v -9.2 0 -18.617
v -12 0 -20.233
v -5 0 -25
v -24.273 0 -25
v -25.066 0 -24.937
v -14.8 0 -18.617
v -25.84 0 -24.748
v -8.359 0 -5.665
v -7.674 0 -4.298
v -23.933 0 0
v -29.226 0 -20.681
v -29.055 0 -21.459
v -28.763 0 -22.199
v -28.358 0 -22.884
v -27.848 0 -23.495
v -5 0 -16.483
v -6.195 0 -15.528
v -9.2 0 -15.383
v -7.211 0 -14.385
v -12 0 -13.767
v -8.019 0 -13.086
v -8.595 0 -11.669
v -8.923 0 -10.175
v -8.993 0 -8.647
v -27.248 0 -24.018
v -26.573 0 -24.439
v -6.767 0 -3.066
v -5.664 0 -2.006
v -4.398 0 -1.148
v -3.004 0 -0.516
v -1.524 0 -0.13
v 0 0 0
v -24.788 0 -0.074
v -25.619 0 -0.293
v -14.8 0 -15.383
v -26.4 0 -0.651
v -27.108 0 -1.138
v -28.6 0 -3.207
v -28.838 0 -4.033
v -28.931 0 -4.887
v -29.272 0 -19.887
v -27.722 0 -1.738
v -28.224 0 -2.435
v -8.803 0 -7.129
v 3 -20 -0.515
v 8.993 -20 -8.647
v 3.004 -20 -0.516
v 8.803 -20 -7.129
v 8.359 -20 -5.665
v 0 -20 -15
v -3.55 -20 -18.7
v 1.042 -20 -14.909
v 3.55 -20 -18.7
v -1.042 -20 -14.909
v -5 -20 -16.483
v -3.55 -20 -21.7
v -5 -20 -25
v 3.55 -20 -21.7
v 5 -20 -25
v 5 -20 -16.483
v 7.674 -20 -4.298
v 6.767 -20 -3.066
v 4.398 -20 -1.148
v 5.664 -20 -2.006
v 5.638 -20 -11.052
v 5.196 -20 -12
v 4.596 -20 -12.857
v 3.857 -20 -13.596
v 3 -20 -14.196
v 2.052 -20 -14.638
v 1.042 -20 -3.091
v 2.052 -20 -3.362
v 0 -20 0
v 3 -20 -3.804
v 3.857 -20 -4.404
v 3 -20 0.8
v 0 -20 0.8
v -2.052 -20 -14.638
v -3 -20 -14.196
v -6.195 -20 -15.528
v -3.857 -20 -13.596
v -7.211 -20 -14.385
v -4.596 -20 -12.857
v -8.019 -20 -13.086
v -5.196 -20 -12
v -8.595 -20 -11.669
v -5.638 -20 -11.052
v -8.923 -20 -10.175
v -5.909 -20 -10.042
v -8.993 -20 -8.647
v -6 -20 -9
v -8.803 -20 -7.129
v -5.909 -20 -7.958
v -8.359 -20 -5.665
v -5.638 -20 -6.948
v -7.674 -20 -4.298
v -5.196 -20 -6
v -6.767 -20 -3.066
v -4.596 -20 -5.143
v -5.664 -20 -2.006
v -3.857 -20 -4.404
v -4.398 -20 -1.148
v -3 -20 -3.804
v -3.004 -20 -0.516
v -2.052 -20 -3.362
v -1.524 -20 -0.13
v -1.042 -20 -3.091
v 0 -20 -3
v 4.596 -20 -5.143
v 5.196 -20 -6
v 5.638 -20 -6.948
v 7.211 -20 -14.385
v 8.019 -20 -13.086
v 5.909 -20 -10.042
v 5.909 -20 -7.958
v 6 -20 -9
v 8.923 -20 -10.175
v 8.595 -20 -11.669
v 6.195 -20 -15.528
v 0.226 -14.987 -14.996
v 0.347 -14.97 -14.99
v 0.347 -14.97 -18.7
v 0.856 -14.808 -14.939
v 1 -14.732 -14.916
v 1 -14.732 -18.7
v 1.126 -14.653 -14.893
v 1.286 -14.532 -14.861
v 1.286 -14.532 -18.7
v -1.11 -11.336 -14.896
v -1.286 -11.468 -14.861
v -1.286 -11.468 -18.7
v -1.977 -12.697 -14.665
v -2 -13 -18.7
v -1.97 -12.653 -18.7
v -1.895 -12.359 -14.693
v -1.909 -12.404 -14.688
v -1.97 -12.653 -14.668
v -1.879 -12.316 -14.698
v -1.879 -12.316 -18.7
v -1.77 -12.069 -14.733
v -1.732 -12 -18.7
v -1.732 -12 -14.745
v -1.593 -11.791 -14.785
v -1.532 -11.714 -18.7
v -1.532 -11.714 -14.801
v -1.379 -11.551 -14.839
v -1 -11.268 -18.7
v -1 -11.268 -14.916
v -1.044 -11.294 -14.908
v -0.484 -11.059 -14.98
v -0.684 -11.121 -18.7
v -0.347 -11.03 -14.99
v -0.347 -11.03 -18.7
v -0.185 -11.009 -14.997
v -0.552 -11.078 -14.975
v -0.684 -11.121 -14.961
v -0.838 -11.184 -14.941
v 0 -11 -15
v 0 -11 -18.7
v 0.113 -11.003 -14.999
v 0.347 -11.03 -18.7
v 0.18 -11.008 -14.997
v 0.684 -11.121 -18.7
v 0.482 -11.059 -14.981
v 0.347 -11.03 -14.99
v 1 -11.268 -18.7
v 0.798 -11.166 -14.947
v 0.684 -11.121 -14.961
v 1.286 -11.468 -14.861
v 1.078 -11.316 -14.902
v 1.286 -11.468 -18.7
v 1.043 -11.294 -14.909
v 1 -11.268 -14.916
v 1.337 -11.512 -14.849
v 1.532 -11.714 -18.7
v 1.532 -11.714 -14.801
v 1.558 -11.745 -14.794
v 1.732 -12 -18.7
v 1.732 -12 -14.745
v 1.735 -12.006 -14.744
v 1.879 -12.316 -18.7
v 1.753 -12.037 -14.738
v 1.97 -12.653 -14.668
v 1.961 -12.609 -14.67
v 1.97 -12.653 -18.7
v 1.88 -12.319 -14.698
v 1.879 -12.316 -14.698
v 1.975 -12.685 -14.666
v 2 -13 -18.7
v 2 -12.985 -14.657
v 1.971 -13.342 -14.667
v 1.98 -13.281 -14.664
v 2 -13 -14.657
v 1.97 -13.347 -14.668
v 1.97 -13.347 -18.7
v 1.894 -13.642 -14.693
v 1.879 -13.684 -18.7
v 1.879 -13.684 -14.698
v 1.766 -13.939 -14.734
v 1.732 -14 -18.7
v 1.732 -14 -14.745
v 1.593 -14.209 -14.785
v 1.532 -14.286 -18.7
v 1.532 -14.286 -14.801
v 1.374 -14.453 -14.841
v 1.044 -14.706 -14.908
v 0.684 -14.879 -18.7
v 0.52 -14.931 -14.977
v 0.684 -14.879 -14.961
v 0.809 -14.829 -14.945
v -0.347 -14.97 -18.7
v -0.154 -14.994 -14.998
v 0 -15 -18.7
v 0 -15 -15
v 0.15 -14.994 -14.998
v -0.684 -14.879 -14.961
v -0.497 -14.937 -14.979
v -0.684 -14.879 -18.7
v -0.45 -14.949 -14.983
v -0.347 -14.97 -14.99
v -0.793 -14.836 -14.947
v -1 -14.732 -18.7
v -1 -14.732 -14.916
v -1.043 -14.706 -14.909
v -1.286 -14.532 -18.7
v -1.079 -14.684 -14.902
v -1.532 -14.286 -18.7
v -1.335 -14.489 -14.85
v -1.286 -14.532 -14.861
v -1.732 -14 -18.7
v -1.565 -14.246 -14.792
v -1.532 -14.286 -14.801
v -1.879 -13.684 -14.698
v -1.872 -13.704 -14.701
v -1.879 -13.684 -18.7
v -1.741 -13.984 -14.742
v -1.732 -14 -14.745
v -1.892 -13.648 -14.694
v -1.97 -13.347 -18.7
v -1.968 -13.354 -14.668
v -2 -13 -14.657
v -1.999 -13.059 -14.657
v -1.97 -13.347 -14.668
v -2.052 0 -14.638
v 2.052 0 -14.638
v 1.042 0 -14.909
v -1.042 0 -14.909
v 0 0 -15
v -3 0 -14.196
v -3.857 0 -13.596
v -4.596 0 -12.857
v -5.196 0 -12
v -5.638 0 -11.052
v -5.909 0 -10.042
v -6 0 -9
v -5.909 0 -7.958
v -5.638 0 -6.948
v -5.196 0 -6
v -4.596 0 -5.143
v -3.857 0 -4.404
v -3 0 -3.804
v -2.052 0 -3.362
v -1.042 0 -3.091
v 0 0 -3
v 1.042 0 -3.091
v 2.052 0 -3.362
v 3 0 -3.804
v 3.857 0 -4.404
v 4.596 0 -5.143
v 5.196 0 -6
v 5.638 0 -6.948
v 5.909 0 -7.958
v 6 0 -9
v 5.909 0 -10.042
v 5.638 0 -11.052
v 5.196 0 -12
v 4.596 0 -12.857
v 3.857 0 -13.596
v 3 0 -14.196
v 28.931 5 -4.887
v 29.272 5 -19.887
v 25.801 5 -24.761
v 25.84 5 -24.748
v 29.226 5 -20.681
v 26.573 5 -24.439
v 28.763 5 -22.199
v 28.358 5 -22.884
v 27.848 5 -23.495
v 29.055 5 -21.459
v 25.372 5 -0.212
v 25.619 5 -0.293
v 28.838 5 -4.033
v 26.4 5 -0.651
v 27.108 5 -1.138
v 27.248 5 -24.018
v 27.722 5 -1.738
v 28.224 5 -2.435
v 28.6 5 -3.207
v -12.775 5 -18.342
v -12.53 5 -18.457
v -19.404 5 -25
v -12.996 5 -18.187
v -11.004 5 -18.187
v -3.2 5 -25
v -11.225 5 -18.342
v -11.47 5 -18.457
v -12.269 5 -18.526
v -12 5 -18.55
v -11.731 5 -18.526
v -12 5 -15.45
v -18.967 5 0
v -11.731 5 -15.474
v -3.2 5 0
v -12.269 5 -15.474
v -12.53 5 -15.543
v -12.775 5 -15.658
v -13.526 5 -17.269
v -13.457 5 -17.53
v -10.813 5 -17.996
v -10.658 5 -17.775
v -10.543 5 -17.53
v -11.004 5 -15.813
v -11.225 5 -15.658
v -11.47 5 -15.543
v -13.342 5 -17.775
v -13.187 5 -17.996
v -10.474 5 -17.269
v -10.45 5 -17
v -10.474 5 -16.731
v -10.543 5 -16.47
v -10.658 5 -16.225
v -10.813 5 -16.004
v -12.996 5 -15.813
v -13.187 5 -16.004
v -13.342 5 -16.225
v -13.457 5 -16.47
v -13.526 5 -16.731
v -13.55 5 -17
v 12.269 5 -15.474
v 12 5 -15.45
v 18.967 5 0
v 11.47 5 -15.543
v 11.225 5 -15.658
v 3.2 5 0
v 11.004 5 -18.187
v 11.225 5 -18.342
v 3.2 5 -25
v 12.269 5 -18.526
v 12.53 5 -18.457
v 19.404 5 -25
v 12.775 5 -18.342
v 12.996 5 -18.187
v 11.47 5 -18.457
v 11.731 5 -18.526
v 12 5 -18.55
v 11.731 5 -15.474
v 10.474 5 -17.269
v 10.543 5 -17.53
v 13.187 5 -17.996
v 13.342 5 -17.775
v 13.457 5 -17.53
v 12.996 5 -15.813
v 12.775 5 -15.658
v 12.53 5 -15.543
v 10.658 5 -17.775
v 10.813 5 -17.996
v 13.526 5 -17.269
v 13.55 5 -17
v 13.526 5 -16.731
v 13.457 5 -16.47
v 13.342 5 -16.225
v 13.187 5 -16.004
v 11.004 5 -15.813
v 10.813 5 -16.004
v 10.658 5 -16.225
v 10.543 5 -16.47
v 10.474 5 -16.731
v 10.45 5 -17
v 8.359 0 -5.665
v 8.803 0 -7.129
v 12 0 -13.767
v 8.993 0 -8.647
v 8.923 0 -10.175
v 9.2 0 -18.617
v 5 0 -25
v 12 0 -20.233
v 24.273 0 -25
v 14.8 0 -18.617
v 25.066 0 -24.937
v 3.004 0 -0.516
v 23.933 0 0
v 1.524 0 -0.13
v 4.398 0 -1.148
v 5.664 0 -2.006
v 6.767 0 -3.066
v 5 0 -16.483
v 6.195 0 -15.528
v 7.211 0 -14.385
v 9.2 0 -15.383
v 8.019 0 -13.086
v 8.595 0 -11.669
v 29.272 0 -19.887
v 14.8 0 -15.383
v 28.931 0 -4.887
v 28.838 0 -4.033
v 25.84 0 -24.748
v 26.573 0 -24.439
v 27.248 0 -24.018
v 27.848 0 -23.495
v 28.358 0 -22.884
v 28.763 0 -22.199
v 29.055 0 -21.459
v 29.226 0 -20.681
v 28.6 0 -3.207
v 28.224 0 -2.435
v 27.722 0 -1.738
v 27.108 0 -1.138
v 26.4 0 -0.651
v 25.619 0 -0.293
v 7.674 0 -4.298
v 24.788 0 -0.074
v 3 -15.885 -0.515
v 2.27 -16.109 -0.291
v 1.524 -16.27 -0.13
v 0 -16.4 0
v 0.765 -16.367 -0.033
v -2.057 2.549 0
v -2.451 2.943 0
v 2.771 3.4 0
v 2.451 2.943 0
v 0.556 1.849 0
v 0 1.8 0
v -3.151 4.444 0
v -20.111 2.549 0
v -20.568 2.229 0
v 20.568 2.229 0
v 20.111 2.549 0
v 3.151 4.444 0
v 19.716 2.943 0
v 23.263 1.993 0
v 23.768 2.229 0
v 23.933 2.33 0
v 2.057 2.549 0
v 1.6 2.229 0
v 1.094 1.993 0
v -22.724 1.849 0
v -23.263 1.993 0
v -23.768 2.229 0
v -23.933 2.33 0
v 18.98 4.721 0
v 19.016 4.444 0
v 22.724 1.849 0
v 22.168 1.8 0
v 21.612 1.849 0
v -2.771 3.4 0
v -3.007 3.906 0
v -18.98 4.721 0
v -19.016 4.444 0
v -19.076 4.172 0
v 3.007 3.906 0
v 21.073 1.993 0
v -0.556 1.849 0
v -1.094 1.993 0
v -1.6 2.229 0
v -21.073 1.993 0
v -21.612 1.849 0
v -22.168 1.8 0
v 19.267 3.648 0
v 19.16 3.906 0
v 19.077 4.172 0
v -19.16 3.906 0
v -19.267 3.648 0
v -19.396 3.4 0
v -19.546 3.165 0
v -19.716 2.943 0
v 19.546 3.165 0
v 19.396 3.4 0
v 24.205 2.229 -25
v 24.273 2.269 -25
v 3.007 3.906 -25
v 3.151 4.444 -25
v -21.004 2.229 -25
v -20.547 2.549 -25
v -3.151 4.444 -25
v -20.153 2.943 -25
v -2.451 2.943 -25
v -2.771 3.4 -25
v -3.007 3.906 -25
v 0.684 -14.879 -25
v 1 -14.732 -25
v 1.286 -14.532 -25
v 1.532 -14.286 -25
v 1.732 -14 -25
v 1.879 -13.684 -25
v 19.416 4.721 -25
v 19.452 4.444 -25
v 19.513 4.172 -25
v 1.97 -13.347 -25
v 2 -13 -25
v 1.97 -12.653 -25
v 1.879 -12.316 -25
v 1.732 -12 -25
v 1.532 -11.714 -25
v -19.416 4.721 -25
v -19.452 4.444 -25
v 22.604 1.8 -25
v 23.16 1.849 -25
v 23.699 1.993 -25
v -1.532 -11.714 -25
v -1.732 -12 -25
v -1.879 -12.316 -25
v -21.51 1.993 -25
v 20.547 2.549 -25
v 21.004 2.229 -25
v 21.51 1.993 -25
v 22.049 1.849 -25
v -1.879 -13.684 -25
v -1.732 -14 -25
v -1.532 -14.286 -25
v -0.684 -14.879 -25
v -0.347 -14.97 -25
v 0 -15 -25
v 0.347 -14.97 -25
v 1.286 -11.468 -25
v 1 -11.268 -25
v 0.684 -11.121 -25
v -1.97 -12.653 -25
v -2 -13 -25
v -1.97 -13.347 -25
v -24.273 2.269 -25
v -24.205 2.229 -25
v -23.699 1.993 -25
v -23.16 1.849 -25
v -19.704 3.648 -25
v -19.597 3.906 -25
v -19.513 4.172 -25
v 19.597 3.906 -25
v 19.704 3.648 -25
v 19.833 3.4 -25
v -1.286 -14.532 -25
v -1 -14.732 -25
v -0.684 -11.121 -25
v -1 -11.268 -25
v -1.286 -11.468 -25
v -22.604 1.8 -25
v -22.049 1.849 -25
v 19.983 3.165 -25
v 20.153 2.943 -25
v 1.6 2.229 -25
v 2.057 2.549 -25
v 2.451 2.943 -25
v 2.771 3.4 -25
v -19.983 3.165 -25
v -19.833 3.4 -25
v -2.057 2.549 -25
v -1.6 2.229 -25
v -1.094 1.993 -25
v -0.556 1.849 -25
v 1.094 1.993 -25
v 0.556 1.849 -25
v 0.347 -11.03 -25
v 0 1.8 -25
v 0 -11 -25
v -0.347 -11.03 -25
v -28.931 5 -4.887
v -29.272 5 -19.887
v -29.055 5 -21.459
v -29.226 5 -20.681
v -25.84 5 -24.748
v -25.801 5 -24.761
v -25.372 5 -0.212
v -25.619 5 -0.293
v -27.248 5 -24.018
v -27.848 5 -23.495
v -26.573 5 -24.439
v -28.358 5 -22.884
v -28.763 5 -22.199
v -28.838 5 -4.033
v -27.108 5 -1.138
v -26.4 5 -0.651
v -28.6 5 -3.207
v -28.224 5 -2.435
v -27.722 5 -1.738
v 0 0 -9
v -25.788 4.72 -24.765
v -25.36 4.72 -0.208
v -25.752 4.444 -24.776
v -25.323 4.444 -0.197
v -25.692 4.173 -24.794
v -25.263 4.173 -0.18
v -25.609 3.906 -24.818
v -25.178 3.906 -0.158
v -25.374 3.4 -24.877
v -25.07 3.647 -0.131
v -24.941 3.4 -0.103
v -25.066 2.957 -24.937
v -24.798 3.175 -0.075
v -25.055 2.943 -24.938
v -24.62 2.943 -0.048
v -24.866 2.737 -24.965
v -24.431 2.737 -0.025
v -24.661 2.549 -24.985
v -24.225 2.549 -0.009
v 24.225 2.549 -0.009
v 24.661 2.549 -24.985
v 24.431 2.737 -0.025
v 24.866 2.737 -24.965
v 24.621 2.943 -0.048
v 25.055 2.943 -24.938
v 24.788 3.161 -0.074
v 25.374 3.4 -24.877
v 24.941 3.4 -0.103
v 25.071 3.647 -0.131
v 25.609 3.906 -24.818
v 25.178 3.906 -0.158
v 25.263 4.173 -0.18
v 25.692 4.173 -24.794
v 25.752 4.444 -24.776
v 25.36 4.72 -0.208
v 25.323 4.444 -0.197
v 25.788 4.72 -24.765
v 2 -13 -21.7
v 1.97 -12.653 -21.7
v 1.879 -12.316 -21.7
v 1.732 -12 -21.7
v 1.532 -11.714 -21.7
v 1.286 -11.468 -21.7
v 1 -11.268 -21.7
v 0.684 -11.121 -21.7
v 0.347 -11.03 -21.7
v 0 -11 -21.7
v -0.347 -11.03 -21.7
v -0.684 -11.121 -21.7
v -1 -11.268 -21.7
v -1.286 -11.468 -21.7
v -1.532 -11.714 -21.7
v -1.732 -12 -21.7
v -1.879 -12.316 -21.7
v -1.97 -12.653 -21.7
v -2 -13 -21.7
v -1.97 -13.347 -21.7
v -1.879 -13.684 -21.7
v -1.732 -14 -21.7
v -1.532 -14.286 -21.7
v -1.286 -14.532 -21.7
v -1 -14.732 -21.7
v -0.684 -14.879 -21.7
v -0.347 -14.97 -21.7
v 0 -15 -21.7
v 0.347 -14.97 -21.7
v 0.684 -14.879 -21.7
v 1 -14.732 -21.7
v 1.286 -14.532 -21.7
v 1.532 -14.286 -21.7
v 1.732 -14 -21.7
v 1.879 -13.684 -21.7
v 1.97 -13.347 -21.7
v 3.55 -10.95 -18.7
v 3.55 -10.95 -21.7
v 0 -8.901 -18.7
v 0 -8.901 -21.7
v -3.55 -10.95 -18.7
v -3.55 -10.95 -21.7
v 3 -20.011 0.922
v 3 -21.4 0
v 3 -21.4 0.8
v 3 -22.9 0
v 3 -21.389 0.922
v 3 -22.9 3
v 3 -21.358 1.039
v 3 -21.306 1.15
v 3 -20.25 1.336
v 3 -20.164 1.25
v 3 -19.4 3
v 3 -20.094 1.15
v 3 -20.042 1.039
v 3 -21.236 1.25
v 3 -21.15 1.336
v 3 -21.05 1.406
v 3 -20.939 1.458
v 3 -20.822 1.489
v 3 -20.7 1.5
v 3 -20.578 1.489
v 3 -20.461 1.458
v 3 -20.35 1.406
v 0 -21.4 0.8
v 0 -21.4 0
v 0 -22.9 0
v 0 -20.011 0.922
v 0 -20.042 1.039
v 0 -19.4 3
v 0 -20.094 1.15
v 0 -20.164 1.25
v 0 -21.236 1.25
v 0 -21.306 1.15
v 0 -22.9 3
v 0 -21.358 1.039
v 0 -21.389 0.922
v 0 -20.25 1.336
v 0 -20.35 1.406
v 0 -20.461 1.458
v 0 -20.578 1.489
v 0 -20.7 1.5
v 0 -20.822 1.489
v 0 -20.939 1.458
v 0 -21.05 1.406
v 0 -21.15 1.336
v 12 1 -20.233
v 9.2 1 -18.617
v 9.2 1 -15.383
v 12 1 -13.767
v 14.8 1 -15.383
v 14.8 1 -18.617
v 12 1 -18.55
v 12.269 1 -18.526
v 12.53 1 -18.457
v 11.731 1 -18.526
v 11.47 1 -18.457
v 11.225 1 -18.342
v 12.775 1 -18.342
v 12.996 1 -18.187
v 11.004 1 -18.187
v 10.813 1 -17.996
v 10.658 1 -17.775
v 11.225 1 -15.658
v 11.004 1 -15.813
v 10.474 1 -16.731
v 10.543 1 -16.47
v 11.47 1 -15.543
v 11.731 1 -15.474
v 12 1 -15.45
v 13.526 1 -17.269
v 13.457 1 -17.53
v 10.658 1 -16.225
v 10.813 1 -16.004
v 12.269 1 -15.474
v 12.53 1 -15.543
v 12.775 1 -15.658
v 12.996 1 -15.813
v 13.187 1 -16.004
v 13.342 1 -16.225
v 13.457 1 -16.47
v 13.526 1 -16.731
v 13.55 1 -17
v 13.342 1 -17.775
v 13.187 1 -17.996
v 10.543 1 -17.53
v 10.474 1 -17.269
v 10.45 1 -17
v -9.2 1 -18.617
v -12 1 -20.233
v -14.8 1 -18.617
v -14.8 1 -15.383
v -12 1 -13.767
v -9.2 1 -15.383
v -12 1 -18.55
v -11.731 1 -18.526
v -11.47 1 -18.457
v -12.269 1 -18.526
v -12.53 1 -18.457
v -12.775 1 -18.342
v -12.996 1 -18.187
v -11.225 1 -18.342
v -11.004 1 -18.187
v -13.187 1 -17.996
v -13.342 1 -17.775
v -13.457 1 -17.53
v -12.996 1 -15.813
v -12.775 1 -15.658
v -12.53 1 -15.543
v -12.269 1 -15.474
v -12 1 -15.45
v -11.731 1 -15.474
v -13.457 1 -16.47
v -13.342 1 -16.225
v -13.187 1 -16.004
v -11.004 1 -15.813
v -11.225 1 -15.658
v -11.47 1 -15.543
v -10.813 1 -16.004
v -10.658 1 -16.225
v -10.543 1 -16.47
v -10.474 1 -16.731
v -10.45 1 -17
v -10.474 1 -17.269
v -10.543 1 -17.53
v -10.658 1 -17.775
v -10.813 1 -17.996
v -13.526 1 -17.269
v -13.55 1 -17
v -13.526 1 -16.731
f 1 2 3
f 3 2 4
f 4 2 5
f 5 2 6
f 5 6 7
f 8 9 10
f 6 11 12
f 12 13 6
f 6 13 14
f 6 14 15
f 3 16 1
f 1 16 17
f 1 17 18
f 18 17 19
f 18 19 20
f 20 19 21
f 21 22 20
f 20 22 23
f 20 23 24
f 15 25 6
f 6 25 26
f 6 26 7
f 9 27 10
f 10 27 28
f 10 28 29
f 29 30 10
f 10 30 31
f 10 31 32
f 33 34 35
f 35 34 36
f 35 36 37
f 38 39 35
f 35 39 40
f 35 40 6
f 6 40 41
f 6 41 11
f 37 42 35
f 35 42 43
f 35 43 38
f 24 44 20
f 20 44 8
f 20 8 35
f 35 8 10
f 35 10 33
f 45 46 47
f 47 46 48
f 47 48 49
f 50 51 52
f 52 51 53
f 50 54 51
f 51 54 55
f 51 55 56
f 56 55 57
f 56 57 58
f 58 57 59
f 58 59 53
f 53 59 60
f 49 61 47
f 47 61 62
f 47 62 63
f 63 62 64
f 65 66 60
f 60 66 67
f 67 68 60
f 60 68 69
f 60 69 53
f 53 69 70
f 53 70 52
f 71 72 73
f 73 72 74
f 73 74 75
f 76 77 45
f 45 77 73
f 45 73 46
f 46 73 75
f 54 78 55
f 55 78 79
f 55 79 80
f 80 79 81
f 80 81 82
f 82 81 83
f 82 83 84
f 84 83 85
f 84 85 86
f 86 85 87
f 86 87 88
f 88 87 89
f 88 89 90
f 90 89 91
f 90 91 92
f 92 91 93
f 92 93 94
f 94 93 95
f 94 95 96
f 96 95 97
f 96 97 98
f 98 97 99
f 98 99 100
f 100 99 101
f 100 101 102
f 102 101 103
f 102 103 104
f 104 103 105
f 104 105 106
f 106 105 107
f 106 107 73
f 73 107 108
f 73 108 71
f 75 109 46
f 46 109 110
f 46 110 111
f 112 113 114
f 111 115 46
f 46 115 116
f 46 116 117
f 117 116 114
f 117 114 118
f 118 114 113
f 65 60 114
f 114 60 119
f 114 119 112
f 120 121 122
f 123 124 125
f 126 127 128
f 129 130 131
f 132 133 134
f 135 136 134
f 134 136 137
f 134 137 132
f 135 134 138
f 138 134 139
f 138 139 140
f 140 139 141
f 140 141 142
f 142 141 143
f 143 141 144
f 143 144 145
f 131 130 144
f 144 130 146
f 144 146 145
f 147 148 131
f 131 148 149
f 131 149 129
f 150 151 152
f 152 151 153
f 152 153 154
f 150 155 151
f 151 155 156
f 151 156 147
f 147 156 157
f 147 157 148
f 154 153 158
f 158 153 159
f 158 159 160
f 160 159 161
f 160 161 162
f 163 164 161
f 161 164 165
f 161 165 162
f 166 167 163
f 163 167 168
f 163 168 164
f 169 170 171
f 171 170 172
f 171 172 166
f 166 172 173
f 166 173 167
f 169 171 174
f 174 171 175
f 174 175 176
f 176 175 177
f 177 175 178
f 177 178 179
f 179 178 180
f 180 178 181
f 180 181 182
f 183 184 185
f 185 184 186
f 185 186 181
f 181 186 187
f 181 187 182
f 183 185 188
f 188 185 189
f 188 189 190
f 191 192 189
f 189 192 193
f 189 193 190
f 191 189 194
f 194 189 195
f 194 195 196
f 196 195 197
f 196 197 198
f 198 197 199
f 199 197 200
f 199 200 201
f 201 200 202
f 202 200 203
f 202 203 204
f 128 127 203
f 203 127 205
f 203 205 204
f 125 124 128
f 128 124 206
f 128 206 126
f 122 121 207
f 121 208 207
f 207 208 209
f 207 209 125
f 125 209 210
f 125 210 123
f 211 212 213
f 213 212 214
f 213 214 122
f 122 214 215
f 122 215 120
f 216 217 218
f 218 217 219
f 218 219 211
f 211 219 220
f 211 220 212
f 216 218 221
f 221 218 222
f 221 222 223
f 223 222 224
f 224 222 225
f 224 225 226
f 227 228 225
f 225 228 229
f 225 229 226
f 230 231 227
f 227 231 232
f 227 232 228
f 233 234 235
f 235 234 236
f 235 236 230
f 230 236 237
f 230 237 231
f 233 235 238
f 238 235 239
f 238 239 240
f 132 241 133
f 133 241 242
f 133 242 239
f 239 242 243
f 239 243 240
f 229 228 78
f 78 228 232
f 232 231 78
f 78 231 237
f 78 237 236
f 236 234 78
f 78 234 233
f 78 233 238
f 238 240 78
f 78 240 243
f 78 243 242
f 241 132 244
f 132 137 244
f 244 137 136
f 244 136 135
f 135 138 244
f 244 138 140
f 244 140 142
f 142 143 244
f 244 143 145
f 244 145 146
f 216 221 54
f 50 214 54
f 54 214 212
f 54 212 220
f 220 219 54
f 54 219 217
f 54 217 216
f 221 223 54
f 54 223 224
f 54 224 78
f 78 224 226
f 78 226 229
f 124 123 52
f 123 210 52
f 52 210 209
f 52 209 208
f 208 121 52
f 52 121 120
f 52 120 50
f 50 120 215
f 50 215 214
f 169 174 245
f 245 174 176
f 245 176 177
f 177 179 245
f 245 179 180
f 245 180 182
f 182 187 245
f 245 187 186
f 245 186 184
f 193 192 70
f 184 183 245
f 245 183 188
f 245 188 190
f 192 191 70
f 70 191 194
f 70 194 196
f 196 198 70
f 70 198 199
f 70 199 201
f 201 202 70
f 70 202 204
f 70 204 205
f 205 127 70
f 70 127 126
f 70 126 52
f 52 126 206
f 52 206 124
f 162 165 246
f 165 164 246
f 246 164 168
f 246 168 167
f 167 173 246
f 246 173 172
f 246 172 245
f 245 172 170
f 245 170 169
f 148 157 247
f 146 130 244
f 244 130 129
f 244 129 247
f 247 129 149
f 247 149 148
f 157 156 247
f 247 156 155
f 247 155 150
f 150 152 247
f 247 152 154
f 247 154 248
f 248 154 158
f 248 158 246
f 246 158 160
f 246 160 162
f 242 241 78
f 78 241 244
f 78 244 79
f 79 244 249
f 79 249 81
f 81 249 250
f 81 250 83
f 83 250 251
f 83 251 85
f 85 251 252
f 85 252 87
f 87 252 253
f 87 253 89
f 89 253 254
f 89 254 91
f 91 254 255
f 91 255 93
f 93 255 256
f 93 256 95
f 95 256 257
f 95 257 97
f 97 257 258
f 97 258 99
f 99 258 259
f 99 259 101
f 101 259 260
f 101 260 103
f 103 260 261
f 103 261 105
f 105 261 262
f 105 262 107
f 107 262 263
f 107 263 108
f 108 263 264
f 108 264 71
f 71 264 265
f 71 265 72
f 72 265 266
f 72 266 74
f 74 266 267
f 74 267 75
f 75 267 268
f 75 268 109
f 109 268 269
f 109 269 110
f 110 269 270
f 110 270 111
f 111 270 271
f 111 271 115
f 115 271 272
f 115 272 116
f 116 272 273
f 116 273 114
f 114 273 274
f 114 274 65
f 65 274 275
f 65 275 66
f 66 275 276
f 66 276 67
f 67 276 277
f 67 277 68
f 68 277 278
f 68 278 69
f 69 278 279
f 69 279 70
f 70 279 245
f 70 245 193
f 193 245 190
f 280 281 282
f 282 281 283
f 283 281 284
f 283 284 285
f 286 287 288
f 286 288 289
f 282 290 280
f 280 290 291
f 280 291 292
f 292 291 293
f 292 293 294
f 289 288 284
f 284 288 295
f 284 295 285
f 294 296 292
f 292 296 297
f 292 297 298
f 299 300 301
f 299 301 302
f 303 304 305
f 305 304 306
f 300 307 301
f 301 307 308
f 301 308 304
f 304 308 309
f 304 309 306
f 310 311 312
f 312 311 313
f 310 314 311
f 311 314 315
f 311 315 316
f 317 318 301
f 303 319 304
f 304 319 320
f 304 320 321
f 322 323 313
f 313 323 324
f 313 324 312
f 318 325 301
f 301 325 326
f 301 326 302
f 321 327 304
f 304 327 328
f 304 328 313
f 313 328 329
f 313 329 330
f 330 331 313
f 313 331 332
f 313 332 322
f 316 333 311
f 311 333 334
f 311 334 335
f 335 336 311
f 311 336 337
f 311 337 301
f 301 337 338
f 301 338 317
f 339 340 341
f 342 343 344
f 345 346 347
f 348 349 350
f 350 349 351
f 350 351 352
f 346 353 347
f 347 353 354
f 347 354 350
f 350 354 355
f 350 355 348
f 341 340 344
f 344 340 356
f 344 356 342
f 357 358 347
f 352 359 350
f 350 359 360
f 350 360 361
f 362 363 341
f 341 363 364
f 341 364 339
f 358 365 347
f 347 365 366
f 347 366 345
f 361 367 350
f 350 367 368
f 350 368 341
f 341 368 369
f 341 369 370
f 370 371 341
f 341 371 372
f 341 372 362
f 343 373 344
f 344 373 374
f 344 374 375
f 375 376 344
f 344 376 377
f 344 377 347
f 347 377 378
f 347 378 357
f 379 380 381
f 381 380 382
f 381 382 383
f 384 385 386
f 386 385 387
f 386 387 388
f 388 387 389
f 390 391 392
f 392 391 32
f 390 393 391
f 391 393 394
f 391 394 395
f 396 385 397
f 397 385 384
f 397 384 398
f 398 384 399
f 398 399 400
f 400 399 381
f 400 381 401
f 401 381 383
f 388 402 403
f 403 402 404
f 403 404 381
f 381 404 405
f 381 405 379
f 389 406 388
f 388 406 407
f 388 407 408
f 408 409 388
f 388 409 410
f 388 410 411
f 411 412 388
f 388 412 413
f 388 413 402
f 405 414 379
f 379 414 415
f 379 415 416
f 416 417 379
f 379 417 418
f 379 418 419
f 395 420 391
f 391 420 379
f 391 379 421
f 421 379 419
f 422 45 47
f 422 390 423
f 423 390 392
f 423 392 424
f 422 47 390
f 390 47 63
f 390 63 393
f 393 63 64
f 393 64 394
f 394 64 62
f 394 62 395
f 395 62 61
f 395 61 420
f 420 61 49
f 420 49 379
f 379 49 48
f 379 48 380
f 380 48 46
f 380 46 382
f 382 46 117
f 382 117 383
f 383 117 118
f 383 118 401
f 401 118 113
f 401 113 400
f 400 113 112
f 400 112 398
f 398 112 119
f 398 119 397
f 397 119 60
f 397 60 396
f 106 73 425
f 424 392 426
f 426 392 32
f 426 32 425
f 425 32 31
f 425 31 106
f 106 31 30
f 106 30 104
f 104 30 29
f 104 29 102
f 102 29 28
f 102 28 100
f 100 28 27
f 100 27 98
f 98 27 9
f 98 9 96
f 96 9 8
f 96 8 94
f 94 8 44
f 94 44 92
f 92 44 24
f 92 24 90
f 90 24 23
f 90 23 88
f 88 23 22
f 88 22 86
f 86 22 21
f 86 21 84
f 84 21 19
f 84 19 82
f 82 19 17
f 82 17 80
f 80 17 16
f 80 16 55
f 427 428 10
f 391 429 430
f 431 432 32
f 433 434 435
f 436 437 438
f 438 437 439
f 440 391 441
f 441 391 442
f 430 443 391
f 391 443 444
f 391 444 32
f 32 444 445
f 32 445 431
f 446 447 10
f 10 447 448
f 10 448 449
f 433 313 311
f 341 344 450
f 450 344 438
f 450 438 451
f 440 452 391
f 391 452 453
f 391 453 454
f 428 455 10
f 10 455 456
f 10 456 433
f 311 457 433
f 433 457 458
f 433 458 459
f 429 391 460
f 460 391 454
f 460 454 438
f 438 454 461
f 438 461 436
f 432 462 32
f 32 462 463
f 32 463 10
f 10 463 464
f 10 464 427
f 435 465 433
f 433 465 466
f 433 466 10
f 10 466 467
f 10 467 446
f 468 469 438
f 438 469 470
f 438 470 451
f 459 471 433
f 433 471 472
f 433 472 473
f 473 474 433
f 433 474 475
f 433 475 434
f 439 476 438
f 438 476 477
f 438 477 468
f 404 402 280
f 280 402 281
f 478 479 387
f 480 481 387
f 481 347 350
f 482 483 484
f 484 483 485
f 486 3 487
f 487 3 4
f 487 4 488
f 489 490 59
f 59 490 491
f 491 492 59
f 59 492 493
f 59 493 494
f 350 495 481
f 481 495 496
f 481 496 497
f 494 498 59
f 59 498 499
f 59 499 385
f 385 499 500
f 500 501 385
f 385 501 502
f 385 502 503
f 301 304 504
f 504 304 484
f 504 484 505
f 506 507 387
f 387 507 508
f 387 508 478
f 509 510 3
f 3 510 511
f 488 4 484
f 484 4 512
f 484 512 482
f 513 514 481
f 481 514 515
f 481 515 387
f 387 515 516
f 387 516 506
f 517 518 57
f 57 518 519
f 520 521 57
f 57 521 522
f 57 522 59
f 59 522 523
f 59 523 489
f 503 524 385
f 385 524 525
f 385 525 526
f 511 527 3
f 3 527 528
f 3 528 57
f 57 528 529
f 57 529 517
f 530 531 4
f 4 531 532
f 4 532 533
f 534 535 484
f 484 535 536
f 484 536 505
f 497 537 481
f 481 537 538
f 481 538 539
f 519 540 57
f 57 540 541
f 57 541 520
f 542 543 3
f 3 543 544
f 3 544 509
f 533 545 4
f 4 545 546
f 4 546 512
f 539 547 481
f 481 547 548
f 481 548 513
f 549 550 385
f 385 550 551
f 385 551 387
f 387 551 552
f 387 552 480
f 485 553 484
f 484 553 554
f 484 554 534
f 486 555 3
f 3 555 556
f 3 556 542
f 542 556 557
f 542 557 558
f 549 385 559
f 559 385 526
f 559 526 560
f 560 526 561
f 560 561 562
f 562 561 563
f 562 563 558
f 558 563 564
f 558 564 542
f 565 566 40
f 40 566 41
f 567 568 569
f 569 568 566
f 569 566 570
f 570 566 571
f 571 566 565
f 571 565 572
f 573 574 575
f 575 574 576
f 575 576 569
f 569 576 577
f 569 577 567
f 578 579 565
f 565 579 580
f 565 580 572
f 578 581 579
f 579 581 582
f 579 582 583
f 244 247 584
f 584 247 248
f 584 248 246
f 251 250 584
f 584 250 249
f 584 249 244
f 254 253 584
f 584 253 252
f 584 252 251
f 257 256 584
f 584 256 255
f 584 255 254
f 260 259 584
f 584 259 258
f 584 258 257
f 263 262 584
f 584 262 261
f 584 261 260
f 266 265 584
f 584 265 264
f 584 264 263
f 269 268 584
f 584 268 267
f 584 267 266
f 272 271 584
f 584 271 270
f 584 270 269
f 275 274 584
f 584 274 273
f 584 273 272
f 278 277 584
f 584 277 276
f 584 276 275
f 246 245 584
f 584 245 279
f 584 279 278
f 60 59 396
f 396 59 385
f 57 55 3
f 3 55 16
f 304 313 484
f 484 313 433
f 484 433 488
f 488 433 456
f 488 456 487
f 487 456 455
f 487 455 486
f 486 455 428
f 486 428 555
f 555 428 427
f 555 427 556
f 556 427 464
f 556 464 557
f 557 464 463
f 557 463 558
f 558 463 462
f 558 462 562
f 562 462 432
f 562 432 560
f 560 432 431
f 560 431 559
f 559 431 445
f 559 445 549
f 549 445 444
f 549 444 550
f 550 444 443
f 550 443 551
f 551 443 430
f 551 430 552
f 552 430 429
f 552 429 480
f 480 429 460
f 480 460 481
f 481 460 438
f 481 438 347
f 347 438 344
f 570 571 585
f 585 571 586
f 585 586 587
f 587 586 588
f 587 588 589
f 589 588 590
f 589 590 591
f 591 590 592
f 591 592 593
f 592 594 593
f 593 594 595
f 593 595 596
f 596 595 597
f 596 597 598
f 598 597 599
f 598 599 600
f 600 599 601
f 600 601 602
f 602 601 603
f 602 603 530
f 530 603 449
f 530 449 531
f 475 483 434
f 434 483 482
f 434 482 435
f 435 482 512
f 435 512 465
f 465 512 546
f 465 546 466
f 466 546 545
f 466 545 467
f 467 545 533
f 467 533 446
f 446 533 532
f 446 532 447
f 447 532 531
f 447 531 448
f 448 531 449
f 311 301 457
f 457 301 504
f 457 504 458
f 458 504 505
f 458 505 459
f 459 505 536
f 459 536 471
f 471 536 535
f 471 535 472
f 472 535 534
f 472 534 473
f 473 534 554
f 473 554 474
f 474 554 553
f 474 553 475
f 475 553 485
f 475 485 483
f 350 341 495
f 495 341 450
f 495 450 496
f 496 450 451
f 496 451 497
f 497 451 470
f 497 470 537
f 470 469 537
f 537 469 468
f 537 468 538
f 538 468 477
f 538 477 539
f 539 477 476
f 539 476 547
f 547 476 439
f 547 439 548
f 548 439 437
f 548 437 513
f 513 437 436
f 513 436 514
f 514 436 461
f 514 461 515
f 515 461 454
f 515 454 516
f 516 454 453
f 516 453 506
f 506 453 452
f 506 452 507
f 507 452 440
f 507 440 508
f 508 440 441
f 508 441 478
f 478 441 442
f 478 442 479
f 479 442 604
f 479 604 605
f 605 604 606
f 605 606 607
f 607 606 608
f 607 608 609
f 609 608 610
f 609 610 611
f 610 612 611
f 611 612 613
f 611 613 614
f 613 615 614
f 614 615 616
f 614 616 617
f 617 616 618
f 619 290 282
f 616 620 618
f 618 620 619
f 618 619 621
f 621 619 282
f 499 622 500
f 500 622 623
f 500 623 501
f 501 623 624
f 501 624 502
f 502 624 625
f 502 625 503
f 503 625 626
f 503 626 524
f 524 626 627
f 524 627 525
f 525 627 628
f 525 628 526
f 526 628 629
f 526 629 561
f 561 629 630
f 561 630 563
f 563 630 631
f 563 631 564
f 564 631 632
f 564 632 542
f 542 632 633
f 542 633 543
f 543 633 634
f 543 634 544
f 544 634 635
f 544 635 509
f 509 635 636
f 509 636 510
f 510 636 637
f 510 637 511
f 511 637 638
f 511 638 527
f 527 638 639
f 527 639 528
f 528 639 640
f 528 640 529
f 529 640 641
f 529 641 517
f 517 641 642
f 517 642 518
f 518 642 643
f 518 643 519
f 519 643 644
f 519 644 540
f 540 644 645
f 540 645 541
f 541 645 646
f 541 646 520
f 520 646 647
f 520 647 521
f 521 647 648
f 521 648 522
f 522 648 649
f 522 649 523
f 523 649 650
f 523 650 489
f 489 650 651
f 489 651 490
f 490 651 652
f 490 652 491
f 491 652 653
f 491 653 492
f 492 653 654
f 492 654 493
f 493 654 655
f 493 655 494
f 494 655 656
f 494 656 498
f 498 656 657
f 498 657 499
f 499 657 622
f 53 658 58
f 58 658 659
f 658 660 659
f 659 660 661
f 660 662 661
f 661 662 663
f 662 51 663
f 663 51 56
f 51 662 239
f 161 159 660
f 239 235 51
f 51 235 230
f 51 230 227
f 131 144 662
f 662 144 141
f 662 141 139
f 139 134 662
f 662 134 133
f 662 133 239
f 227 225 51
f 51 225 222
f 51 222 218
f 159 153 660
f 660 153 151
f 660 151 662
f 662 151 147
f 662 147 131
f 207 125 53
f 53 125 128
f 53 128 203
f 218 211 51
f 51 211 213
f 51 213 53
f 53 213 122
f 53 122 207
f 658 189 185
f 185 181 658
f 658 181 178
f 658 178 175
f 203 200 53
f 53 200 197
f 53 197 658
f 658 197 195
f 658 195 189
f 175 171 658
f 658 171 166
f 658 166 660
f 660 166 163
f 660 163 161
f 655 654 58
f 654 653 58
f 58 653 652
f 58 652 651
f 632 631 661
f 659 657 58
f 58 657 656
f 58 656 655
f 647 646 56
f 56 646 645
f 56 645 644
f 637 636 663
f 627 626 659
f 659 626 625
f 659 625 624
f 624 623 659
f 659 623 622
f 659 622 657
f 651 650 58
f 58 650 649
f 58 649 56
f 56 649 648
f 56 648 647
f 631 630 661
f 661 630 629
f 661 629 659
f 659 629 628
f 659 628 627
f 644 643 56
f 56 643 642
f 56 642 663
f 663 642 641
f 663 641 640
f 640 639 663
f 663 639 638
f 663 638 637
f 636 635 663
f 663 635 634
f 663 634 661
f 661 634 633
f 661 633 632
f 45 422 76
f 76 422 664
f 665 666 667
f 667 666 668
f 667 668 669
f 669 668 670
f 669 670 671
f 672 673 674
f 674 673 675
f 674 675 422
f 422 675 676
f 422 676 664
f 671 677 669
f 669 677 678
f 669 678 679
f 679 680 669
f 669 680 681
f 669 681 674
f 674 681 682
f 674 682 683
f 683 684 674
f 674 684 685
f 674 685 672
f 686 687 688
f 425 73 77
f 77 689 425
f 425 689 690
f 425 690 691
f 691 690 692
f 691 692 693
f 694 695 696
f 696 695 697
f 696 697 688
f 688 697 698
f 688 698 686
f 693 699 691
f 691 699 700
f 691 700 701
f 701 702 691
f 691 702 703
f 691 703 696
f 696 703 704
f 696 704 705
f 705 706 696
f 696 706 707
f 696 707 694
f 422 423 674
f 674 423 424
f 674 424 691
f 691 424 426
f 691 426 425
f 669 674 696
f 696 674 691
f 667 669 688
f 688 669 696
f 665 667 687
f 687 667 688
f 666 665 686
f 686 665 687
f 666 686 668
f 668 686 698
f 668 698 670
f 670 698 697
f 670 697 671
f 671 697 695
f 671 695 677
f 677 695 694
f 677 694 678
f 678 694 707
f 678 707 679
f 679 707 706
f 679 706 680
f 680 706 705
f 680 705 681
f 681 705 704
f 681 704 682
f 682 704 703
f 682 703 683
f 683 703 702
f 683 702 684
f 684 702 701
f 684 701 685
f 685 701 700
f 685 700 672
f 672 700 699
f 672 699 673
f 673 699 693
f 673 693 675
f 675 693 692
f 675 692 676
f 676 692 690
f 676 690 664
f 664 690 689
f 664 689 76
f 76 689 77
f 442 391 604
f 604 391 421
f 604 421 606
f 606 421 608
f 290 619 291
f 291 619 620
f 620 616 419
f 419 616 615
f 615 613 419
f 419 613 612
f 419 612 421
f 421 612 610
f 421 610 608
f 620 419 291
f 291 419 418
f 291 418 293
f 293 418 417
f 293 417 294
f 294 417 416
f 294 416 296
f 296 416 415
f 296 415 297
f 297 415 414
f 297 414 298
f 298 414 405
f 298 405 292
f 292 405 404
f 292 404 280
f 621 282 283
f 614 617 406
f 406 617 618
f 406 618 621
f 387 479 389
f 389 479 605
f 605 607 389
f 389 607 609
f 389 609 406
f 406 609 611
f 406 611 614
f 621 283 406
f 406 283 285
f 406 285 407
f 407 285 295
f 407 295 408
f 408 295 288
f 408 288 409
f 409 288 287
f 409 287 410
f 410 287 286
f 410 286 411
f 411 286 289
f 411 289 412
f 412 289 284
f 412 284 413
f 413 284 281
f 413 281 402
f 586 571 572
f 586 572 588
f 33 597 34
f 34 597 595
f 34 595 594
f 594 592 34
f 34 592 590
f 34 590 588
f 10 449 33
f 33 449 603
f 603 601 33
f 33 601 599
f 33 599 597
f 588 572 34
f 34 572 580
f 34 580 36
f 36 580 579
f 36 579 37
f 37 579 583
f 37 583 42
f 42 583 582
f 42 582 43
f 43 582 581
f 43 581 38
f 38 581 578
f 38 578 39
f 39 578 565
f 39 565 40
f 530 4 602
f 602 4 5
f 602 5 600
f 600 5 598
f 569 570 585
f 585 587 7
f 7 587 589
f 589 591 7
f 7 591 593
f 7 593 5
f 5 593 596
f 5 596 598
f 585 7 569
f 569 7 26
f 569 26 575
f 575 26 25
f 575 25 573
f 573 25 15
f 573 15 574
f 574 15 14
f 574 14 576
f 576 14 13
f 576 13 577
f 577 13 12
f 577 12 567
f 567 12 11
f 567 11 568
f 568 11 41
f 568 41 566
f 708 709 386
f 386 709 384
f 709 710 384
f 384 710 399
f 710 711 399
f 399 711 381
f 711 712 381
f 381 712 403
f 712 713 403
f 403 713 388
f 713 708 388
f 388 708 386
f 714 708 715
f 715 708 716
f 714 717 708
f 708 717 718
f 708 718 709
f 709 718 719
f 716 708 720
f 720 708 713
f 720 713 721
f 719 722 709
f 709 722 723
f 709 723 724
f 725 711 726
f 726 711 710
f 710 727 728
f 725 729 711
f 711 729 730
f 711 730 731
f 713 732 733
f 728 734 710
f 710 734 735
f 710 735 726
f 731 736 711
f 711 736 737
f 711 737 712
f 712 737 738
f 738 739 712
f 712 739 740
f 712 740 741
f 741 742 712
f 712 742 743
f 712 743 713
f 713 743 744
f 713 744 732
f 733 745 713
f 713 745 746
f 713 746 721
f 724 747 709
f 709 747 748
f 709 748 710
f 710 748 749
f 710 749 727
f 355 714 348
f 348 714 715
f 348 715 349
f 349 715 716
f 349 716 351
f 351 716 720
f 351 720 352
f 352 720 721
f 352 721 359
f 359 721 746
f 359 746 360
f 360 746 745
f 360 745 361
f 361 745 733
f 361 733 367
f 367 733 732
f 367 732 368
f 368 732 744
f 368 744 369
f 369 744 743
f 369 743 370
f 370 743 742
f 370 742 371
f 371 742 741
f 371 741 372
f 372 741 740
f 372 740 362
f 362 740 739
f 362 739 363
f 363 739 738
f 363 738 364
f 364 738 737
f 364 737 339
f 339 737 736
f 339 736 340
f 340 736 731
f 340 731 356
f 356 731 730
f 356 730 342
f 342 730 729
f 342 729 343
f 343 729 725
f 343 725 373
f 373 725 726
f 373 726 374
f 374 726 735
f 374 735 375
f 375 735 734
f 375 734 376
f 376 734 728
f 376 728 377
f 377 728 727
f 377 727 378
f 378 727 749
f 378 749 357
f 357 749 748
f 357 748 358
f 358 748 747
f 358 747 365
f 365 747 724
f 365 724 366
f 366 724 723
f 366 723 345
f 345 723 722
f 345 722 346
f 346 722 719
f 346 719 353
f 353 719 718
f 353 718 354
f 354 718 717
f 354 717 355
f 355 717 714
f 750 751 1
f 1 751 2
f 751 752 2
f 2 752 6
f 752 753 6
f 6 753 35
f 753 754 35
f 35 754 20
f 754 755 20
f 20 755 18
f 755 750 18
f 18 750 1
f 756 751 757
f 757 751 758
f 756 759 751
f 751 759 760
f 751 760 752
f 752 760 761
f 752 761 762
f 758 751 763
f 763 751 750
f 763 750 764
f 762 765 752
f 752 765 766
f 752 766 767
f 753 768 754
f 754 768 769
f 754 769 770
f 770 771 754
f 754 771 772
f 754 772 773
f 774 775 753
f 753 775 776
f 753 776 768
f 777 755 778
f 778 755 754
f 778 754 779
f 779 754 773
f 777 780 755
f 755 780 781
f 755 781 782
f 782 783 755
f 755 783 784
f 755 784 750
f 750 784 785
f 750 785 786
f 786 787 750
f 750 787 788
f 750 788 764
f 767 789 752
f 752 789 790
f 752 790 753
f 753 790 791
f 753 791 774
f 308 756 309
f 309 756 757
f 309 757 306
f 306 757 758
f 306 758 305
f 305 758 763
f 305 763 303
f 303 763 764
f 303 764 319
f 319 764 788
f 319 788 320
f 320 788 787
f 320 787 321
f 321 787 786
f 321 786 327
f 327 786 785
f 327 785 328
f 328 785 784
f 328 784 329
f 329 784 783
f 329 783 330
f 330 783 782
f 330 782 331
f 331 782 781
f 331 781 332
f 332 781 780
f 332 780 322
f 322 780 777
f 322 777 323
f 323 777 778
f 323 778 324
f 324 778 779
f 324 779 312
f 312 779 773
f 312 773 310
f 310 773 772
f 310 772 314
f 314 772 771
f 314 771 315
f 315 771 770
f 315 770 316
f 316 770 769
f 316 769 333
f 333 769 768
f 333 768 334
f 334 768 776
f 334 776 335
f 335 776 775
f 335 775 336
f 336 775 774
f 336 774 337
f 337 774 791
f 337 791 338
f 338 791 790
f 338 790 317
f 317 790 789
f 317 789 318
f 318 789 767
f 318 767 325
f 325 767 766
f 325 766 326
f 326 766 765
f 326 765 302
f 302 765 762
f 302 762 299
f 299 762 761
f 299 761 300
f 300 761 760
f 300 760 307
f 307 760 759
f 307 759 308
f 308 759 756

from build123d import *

# Parameters (mm, degrees)
BOSS_EXTRUDE1_DEPTH             = 5
SKETCH2_R                       = 9
SKETCH2_R_2                     = 6
BOSS_EXTRUDE2_DEPTH             = 20
SKETCH3_W                       = 10
SKETCH3_H                       = 8.516685226
BOSS_EXTRUDE3_DEPTH             = 20
SKETCH5_R                       = 3.2
CUT_EXTRUDE1_DEPTH              = 44.458424087
CIRPATTERN1_COUNT               = 2
CIRPATTERN1_ANGLE               = 1
CIRPATTERN1_THE_OTHER_WAY_COUNT = 2
CIRPATTERN1_THE_OTHER_WAY_ANGLE = 1
CUT_EXTRUDE2_REACH              = 45.458
CUT_EXTRUDE2_END_RADIUS         = 6
SKETCH6_R                       = 2
CUT_EXTRUDE2_DIRECTION_2_DEPTH  = 44.458424087
CUT_EXTRUDE3_START              = -3.3
CUT_EXTRUDE3_DEPTH              = 3
BOSS_EXTRUDE4_DEPTH             = 3
FILLET1_START                   = -20
FILLET1_DEPTH                   = 25
CUT_EXTRUDE4_DEPTH              = 1
SKETCH10_R                      = 1.55
CUT_EXTRUDE5_DEPTH              = 46.311291634


with BuildPart() as part:
    # Sketch1 → Boss-Extrude1 (new body)
    with BuildSketch(Plane(origin=(0, 0, 0), x_dir=(1, 0, 0), z_dir=(0, 1, 0))):
        Polygon((-28.820331722, 0), (-29.387661087, 25), (29.387661087, 25), (28.820331722, 0), align=None)
    extrude(amount=BOSS_EXTRUDE1_DEPTH)

    # Sketch2 → Boss-Extrude2 (add)
    with BuildSketch(Plane.XZ):
        with Locations(Location((0, -9, 0), (0, 0, 90))):
            Circle(SKETCH2_R)
        with Locations(Location((0, -9, 0), (0, 0, 270))):
            Circle(SKETCH2_R_2, mode=Mode.SUBTRACT)
    extrude(amount=BOSS_EXTRUDE2_DEPTH)

    # Sketch3 → Boss-Extrude3 (add)
    with BuildSketch(Plane.XZ):
        with Locations((0, -20.741657387)):
            Rectangle(SKETCH3_W, SKETCH3_H)
    extrude(amount=BOSS_EXTRUDE3_DEPTH)

    # Sketch5 → Cut-Extrude1 (cut, symmetric)
    with BuildSketch(Plane.XY):
        with Locations((0, 5)):
            Circle(SKETCH5_R)
    cut_extrude1 = extrude(amount=CUT_EXTRUDE1_DEPTH, both=True, mode=Mode.SUBTRACT)

    # CirPattern1: Cut-Extrude1 ×2 about axis
    cirpattern1_axis = Axis((0, 0, 1270), (0, 1, 0))
    for i in range(1, CIRPATTERN1_COUNT):
        add(cut_extrude1.rotate(cirpattern1_axis, i * CIRPATTERN1_ANGLE / (CIRPATTERN1_COUNT - 1)), mode=Mode.SUBTRACT)

    # CirPattern1 the other way: Cut-Extrude1 ×2 about axis
    cirpattern1_the_other_way_axis = Axis((0, 0, 1270), (0, -1, 0))
    for i in range(1, CIRPATTERN1_THE_OTHER_WAY_COUNT):
        add(cut_extrude1.rotate(cirpattern1_the_other_way_axis, i * CIRPATTERN1_THE_OTHER_WAY_ANGLE / (CIRPATTERN1_THE_OTHER_WAY_COUNT - 1)), mode=Mode.SUBTRACT)

    # Cut-Extrude2: up to this cylinder (the profile starts outside it)
    cut_extrude2_end = Plane(origin=(0, -13, -9), z_dir=(0, 1, 0)) * Cylinder(CUT_EXTRUDE2_END_RADIUS, 103.916, mode=Mode.PRIVATE)
    # Sketch6 → Cut-Extrude2 (cut, up to the surface)
    with BuildSketch(Plane(origin=(0, 0, -25), x_dir=(-1, 0, 0), z_dir=(0, 0, -1)), mode=Mode.PRIVATE) as cut_extrude2_sk1:
        with Locations(Location((0, -13, 0), (0, 0, 180))):
            Circle(SKETCH6_R)
    cut_extrude2_tool1 = extrude(cut_extrude2_sk1.sketch, amount=-CUT_EXTRUDE2_REACH, mode=Mode.PRIVATE) - cut_extrude2_end
    add(cut_extrude2_tool1.solids().sort_by_distance((0, -13, -25))[0], mode=Mode.SUBTRACT)

    # Sketch6 → Cut-Extrude2 direction 2 (cut)
    with BuildSketch(Plane(origin=(0, 0, -25), x_dir=(-1, 0, 0), z_dir=(0, 0, -1))):
        with Locations(Location((0, -13, 0), (0, 0, 180))):
            Circle(SKETCH6_R)
    extrude(amount=CUT_EXTRUDE2_DIRECTION_2_DEPTH, mode=Mode.SUBTRACT)

    # Sketch7 → Cut-Extrude3 (cut)
    with BuildSketch(Plane(origin=(0, 0, -25), x_dir=(-1, 0, 0), z_dir=(0, 0, -1)).offset(CUT_EXTRUDE3_START)):
        Polygon((-3.55, -15.049593456), (-3.55, -20), (3.55, -20), (3.55, -15.049593456), (3.55, -10.950406544), (0, -8.900813089), (-3.55, -10.950406544), align=None)
    extrude(amount=-CUT_EXTRUDE3_DEPTH, mode=Mode.SUBTRACT)

    # Sketch8 → Boss-Extrude4 (add)
    with BuildSketch(Plane(origin=(0, 0, 0), x_dir=(0, 0, -1), z_dir=(1, 0, 0))):
        with BuildLine():
            Line((1, -15.4), (-3, -19.4))
            Line((-3, -19.4), (-3, -22.9))
            Line((-3, -22.9), (0, -22.9))
            Line((0, -22.9), (0, -21.4))
            Line((0, -21.4), (-0.8, -21.4))
            ThreePointArc((-0.8, -21.4), (-1.5, -20.7), (-0.8, -20))
            Line((-0.8, -20), (1, -20))
            Line((1, -20), (1, -15.4))
        make_face()
    extrude(amount=BOSS_EXTRUDE4_DEPTH)

    # Fillet1: read off the stored shape, not the designer's step
    # Fillet1 outline → Fillet1 (cut)
    with BuildSketch(Plane(origin=(0, 0, 0), x_dir=(1, 0, 0), z_dir=(0, 1, 0)).offset(FILLET1_START)):
        with BuildLine():
            Line((28.820331722, 0), (28.931223357, 4.886563332))
            ThreePointArc((28.931223357, 4.886563332), (27.427708206, 1.424585105), (23.93251031, 0))
            Line((23.93251031, 0), (28.820331722, 0))
        make_face()
        with BuildLine():
            ThreePointArc((24.272907929, 25), (27.848322824, 23.495197896), (29.271620976, 19.886563332))
            Line((29.271620976, 19.886563332), (29.387661087, 25))
            Line((29.387661087, 25), (24.272907929, 25))
        make_face()
        with BuildLine():
            Line((-28.820331722, 0), (-23.93251031, 0))
            ThreePointArc((-23.93251031, 0), (-27.427708206, 1.424585105), (-28.931223357, 4.886563332))
            Line((-28.931223357, 4.886563332), (-28.820331722, 0))
        make_face()
        with BuildLine():
            ThreePointArc((-29.271620976, 19.886563332), (-27.848322824, 23.495197896), (-24.272907929, 25))
            Line((-24.272907929, 25), (-29.387661087, 25))
            Line((-29.387661087, 25), (-29.271620976, 19.886563332))
        make_face()
    extrude(amount=FILLET1_DEPTH, mode=Mode.SUBTRACT)

    # Sketch9 → Cut-Extrude4 (cut)
    with BuildSketch(Plane.XZ):
        Polygon((12, -20.233161507), (14.8, -18.616580754), (14.8, -15.383419246), (12, -13.766838493), (9.2, -15.383419246), (9.2, -18.616580754), align=None)
    cut_extrude4 = extrude(amount=-CUT_EXTRUDE4_DEPTH, mode=Mode.SUBTRACT)

    # Sketch10 → Cut-Extrude5 (cut, through all)
    with BuildSketch(Plane.XZ.offset(-1)):
        with Locations(Location((12, -17, 0), (0, 0, 270))):
            Circle(SKETCH10_R)
    cut_extrude5 = extrude(amount=-CUT_EXTRUDE5_DEPTH, mode=Mode.SUBTRACT)

    # Mirror1: Cut-Extrude4, Cut-Extrude5 across plane
    add(cut_extrude4.mirror(Plane(origin=(0, 0, 0), x_dir=(0, 0, 1), z_dir=(1, 0, 0))), mode=Mode.SUBTRACT)
    add(cut_extrude5.mirror(Plane(origin=(0, 0, 0), x_dir=(0, 0, 1), z_dir=(1, 0, 0))), mode=Mode.SUBTRACT)


solid = part.part
